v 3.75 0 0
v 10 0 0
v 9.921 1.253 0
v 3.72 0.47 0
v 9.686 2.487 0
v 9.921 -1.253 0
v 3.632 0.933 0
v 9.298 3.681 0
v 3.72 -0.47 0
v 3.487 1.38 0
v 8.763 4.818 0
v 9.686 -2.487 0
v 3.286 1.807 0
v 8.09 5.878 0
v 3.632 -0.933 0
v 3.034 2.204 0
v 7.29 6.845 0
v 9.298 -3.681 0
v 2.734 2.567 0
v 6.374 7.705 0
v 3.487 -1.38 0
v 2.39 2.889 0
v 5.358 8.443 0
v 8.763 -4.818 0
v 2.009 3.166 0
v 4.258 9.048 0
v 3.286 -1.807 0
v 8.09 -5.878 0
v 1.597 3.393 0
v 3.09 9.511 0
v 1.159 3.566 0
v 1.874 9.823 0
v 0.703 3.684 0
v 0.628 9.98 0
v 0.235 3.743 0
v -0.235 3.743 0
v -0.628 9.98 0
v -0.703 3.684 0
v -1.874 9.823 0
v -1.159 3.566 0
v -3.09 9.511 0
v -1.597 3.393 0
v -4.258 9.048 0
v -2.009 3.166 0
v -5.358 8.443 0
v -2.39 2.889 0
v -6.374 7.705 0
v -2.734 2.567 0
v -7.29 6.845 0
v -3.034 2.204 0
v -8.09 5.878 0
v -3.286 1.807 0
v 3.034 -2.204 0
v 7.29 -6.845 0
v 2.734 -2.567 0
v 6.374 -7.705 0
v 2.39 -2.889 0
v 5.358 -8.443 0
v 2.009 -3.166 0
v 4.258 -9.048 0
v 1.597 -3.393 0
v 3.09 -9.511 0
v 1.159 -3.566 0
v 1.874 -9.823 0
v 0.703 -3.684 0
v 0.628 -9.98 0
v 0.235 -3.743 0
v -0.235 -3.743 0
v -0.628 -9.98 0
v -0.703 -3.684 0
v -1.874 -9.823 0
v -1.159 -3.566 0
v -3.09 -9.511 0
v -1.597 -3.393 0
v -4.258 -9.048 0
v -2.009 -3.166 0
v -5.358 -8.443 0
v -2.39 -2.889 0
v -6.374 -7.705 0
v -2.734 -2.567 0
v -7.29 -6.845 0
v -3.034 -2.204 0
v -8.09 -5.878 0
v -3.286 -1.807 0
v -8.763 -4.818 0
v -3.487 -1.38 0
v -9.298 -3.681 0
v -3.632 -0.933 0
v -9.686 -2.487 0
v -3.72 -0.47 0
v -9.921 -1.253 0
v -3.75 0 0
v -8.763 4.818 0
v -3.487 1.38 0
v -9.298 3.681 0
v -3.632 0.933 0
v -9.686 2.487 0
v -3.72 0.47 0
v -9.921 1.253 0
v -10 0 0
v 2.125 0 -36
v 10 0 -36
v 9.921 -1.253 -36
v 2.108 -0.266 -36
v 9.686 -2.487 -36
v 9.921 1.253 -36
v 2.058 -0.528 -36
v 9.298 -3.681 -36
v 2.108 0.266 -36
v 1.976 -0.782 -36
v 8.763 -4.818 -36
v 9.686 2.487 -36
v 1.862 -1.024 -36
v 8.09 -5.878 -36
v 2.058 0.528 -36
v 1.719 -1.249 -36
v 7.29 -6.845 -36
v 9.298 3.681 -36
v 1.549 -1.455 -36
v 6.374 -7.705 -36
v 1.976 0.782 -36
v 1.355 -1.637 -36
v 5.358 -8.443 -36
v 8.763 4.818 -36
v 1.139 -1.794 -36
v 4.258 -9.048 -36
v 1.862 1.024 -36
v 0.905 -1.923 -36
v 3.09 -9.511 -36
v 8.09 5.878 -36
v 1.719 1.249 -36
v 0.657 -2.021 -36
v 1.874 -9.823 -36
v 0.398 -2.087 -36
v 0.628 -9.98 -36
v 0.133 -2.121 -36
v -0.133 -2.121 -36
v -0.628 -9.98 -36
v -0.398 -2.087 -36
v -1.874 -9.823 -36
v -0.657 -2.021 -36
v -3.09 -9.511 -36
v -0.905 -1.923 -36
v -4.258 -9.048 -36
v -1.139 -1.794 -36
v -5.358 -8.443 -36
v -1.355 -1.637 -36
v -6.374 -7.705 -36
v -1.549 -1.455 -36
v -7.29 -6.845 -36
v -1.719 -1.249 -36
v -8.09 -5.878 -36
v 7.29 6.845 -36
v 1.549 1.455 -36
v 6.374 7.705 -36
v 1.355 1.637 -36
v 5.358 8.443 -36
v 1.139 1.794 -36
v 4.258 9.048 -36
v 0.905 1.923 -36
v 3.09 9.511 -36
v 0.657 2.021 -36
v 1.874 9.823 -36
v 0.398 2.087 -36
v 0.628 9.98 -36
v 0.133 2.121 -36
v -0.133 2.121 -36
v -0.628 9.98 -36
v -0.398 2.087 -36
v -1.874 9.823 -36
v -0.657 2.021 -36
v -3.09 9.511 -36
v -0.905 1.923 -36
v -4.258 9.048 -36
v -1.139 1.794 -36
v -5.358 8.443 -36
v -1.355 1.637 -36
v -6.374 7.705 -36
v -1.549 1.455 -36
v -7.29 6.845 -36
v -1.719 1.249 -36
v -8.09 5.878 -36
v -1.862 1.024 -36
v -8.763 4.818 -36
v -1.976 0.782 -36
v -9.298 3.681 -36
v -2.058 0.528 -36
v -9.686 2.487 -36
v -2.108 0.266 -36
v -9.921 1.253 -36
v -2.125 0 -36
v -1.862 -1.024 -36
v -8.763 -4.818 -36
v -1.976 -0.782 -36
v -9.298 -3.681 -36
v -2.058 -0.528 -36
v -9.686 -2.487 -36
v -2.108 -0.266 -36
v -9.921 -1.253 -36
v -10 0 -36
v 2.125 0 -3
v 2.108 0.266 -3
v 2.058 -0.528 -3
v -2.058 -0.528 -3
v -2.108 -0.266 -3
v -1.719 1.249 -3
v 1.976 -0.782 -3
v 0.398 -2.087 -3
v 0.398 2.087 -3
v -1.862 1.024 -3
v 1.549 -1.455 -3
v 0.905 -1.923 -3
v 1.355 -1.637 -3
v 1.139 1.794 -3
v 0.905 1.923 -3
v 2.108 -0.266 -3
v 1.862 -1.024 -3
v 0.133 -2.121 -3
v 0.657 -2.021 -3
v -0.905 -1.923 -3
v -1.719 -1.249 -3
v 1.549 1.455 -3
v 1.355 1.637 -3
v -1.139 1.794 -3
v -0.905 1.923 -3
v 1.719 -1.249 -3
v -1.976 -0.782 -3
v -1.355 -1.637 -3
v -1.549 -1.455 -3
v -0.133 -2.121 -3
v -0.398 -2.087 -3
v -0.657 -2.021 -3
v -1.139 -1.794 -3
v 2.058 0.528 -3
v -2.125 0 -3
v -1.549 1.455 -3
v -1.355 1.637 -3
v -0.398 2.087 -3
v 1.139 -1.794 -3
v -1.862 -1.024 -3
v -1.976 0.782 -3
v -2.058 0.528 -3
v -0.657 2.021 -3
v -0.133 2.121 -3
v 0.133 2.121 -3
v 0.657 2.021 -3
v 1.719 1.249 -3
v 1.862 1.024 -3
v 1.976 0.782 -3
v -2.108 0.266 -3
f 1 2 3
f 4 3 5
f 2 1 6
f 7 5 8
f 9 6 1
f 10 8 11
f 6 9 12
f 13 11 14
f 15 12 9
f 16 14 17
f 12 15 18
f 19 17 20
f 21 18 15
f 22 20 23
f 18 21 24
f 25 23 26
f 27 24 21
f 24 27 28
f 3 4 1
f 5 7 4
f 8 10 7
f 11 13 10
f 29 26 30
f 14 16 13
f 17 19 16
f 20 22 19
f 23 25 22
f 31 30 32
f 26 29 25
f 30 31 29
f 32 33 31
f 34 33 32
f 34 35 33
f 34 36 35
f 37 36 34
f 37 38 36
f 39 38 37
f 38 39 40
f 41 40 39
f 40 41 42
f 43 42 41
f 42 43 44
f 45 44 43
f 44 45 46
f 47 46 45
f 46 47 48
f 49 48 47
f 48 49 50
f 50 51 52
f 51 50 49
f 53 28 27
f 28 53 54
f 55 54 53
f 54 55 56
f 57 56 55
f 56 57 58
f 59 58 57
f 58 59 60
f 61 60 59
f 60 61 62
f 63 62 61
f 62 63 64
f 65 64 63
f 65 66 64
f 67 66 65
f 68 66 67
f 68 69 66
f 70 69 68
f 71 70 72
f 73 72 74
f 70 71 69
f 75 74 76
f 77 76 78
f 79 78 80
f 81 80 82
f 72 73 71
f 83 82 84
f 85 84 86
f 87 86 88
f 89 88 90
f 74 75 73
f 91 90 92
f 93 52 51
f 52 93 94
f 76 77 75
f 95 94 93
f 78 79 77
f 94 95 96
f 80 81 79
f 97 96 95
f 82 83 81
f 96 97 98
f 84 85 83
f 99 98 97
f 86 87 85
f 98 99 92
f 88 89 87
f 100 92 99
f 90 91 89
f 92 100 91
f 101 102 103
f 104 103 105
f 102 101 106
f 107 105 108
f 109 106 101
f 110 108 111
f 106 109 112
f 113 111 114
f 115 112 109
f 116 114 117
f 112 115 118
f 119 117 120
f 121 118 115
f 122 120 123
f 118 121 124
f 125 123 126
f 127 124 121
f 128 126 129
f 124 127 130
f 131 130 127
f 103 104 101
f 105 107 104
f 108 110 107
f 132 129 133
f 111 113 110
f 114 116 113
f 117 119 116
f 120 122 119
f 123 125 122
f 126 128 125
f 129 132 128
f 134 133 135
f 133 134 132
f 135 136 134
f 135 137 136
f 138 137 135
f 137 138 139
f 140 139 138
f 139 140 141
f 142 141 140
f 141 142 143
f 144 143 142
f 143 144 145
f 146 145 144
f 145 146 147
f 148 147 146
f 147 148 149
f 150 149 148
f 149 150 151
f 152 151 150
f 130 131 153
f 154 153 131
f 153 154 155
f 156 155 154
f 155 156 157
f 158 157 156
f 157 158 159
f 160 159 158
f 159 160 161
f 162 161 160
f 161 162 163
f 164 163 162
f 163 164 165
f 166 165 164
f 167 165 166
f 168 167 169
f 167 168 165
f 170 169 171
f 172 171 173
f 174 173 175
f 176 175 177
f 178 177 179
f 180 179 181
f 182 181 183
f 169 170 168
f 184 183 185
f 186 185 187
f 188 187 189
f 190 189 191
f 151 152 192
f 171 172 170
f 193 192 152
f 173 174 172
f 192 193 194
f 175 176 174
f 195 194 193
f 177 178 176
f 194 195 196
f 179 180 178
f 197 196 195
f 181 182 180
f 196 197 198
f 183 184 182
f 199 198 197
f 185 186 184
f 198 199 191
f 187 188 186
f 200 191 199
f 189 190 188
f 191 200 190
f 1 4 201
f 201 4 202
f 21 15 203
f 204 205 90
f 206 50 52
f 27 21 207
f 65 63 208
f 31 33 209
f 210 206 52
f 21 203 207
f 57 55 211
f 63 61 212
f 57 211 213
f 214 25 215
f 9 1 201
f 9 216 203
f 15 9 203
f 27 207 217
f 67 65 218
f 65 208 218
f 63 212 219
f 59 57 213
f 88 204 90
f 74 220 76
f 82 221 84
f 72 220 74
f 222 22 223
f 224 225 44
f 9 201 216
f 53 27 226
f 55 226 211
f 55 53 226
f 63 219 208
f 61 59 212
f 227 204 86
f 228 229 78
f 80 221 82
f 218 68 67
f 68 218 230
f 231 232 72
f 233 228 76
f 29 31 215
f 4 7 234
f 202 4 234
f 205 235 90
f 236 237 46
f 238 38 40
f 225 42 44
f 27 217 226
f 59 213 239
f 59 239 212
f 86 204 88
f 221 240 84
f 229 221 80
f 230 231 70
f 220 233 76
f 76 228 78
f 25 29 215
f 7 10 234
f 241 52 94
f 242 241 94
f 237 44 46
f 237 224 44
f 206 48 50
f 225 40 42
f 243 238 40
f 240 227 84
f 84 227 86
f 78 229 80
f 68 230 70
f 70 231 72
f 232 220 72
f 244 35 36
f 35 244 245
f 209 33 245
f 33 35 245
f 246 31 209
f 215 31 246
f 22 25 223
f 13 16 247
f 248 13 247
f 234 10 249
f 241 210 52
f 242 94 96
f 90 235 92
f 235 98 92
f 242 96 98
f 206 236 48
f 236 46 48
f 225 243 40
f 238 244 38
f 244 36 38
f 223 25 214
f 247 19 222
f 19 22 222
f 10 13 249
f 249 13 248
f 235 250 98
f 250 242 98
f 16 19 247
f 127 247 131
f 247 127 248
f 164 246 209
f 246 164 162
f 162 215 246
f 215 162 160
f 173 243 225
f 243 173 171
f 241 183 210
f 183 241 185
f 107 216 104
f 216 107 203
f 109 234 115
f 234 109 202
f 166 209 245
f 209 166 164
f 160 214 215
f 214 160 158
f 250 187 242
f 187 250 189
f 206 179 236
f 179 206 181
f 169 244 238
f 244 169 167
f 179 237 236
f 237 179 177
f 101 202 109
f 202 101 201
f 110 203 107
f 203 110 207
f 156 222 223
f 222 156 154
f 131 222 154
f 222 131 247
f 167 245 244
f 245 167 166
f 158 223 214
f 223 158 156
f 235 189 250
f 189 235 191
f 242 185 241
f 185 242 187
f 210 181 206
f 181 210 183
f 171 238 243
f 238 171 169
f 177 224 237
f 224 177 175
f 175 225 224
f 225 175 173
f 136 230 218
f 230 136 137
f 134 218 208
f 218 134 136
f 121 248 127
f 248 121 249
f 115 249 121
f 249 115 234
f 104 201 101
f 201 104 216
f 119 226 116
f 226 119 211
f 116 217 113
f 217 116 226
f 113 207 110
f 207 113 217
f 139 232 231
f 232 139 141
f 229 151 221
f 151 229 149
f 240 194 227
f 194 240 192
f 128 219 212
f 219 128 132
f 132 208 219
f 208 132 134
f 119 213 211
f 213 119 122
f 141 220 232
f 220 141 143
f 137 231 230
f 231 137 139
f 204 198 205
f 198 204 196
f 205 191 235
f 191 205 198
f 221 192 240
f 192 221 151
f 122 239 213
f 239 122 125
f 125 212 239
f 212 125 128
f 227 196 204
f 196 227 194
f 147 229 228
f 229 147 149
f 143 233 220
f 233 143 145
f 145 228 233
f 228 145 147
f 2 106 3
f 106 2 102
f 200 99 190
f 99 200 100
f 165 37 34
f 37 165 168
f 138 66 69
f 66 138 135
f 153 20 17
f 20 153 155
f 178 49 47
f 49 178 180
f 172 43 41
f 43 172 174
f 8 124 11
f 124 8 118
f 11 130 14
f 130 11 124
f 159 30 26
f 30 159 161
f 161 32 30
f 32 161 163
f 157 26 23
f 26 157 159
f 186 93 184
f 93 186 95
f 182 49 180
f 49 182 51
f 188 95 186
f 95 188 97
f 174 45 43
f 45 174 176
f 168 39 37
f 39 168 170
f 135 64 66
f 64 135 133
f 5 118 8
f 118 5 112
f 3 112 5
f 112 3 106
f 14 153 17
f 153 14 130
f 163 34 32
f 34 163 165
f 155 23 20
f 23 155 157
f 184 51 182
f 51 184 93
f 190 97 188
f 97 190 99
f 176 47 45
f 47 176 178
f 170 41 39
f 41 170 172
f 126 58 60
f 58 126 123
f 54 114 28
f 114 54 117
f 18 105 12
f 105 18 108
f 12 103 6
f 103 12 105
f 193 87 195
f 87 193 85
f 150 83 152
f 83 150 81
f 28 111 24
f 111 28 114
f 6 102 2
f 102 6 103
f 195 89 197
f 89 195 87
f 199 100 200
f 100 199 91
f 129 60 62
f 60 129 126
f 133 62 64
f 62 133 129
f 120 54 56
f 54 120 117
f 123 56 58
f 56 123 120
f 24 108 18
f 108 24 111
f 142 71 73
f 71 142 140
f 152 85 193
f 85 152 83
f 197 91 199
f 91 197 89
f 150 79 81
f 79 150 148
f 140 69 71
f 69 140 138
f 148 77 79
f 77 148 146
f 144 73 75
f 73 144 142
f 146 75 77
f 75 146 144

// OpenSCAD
$fn = 50;


difference() {
	union() {
		translate(v = [0, 0, -36.0000000000]) {
			cylinder(h = 36, r = 10.0000000000);
		}
	}
	union() {
		translate(v = [0, 0, 0]) {
			rotate(a = [0, 0, 0]) {
				difference() {
					union() {
						#translate(v = [0, 0, -36.0000000000]) {
							cylinder(h = 36, r = 2.0000000000);
						}
						#translate(v = [0, 0, -3]) {
							cylinder(h = 3, r = 10.0000000000, r1 = 2.1250000000, r2 = 3.7500000000);
						}
						#translate(v = [0, 0, -36.0000000000]) {
							cylinder(h = 36, r = 2.1250000000);
						}
						#translate(v = [0, 0, -36.0000000000]) {
							cylinder(h = 36, r = 2.0000000000);
						}
					}
					union();
				}
			}
		}
	}
}
